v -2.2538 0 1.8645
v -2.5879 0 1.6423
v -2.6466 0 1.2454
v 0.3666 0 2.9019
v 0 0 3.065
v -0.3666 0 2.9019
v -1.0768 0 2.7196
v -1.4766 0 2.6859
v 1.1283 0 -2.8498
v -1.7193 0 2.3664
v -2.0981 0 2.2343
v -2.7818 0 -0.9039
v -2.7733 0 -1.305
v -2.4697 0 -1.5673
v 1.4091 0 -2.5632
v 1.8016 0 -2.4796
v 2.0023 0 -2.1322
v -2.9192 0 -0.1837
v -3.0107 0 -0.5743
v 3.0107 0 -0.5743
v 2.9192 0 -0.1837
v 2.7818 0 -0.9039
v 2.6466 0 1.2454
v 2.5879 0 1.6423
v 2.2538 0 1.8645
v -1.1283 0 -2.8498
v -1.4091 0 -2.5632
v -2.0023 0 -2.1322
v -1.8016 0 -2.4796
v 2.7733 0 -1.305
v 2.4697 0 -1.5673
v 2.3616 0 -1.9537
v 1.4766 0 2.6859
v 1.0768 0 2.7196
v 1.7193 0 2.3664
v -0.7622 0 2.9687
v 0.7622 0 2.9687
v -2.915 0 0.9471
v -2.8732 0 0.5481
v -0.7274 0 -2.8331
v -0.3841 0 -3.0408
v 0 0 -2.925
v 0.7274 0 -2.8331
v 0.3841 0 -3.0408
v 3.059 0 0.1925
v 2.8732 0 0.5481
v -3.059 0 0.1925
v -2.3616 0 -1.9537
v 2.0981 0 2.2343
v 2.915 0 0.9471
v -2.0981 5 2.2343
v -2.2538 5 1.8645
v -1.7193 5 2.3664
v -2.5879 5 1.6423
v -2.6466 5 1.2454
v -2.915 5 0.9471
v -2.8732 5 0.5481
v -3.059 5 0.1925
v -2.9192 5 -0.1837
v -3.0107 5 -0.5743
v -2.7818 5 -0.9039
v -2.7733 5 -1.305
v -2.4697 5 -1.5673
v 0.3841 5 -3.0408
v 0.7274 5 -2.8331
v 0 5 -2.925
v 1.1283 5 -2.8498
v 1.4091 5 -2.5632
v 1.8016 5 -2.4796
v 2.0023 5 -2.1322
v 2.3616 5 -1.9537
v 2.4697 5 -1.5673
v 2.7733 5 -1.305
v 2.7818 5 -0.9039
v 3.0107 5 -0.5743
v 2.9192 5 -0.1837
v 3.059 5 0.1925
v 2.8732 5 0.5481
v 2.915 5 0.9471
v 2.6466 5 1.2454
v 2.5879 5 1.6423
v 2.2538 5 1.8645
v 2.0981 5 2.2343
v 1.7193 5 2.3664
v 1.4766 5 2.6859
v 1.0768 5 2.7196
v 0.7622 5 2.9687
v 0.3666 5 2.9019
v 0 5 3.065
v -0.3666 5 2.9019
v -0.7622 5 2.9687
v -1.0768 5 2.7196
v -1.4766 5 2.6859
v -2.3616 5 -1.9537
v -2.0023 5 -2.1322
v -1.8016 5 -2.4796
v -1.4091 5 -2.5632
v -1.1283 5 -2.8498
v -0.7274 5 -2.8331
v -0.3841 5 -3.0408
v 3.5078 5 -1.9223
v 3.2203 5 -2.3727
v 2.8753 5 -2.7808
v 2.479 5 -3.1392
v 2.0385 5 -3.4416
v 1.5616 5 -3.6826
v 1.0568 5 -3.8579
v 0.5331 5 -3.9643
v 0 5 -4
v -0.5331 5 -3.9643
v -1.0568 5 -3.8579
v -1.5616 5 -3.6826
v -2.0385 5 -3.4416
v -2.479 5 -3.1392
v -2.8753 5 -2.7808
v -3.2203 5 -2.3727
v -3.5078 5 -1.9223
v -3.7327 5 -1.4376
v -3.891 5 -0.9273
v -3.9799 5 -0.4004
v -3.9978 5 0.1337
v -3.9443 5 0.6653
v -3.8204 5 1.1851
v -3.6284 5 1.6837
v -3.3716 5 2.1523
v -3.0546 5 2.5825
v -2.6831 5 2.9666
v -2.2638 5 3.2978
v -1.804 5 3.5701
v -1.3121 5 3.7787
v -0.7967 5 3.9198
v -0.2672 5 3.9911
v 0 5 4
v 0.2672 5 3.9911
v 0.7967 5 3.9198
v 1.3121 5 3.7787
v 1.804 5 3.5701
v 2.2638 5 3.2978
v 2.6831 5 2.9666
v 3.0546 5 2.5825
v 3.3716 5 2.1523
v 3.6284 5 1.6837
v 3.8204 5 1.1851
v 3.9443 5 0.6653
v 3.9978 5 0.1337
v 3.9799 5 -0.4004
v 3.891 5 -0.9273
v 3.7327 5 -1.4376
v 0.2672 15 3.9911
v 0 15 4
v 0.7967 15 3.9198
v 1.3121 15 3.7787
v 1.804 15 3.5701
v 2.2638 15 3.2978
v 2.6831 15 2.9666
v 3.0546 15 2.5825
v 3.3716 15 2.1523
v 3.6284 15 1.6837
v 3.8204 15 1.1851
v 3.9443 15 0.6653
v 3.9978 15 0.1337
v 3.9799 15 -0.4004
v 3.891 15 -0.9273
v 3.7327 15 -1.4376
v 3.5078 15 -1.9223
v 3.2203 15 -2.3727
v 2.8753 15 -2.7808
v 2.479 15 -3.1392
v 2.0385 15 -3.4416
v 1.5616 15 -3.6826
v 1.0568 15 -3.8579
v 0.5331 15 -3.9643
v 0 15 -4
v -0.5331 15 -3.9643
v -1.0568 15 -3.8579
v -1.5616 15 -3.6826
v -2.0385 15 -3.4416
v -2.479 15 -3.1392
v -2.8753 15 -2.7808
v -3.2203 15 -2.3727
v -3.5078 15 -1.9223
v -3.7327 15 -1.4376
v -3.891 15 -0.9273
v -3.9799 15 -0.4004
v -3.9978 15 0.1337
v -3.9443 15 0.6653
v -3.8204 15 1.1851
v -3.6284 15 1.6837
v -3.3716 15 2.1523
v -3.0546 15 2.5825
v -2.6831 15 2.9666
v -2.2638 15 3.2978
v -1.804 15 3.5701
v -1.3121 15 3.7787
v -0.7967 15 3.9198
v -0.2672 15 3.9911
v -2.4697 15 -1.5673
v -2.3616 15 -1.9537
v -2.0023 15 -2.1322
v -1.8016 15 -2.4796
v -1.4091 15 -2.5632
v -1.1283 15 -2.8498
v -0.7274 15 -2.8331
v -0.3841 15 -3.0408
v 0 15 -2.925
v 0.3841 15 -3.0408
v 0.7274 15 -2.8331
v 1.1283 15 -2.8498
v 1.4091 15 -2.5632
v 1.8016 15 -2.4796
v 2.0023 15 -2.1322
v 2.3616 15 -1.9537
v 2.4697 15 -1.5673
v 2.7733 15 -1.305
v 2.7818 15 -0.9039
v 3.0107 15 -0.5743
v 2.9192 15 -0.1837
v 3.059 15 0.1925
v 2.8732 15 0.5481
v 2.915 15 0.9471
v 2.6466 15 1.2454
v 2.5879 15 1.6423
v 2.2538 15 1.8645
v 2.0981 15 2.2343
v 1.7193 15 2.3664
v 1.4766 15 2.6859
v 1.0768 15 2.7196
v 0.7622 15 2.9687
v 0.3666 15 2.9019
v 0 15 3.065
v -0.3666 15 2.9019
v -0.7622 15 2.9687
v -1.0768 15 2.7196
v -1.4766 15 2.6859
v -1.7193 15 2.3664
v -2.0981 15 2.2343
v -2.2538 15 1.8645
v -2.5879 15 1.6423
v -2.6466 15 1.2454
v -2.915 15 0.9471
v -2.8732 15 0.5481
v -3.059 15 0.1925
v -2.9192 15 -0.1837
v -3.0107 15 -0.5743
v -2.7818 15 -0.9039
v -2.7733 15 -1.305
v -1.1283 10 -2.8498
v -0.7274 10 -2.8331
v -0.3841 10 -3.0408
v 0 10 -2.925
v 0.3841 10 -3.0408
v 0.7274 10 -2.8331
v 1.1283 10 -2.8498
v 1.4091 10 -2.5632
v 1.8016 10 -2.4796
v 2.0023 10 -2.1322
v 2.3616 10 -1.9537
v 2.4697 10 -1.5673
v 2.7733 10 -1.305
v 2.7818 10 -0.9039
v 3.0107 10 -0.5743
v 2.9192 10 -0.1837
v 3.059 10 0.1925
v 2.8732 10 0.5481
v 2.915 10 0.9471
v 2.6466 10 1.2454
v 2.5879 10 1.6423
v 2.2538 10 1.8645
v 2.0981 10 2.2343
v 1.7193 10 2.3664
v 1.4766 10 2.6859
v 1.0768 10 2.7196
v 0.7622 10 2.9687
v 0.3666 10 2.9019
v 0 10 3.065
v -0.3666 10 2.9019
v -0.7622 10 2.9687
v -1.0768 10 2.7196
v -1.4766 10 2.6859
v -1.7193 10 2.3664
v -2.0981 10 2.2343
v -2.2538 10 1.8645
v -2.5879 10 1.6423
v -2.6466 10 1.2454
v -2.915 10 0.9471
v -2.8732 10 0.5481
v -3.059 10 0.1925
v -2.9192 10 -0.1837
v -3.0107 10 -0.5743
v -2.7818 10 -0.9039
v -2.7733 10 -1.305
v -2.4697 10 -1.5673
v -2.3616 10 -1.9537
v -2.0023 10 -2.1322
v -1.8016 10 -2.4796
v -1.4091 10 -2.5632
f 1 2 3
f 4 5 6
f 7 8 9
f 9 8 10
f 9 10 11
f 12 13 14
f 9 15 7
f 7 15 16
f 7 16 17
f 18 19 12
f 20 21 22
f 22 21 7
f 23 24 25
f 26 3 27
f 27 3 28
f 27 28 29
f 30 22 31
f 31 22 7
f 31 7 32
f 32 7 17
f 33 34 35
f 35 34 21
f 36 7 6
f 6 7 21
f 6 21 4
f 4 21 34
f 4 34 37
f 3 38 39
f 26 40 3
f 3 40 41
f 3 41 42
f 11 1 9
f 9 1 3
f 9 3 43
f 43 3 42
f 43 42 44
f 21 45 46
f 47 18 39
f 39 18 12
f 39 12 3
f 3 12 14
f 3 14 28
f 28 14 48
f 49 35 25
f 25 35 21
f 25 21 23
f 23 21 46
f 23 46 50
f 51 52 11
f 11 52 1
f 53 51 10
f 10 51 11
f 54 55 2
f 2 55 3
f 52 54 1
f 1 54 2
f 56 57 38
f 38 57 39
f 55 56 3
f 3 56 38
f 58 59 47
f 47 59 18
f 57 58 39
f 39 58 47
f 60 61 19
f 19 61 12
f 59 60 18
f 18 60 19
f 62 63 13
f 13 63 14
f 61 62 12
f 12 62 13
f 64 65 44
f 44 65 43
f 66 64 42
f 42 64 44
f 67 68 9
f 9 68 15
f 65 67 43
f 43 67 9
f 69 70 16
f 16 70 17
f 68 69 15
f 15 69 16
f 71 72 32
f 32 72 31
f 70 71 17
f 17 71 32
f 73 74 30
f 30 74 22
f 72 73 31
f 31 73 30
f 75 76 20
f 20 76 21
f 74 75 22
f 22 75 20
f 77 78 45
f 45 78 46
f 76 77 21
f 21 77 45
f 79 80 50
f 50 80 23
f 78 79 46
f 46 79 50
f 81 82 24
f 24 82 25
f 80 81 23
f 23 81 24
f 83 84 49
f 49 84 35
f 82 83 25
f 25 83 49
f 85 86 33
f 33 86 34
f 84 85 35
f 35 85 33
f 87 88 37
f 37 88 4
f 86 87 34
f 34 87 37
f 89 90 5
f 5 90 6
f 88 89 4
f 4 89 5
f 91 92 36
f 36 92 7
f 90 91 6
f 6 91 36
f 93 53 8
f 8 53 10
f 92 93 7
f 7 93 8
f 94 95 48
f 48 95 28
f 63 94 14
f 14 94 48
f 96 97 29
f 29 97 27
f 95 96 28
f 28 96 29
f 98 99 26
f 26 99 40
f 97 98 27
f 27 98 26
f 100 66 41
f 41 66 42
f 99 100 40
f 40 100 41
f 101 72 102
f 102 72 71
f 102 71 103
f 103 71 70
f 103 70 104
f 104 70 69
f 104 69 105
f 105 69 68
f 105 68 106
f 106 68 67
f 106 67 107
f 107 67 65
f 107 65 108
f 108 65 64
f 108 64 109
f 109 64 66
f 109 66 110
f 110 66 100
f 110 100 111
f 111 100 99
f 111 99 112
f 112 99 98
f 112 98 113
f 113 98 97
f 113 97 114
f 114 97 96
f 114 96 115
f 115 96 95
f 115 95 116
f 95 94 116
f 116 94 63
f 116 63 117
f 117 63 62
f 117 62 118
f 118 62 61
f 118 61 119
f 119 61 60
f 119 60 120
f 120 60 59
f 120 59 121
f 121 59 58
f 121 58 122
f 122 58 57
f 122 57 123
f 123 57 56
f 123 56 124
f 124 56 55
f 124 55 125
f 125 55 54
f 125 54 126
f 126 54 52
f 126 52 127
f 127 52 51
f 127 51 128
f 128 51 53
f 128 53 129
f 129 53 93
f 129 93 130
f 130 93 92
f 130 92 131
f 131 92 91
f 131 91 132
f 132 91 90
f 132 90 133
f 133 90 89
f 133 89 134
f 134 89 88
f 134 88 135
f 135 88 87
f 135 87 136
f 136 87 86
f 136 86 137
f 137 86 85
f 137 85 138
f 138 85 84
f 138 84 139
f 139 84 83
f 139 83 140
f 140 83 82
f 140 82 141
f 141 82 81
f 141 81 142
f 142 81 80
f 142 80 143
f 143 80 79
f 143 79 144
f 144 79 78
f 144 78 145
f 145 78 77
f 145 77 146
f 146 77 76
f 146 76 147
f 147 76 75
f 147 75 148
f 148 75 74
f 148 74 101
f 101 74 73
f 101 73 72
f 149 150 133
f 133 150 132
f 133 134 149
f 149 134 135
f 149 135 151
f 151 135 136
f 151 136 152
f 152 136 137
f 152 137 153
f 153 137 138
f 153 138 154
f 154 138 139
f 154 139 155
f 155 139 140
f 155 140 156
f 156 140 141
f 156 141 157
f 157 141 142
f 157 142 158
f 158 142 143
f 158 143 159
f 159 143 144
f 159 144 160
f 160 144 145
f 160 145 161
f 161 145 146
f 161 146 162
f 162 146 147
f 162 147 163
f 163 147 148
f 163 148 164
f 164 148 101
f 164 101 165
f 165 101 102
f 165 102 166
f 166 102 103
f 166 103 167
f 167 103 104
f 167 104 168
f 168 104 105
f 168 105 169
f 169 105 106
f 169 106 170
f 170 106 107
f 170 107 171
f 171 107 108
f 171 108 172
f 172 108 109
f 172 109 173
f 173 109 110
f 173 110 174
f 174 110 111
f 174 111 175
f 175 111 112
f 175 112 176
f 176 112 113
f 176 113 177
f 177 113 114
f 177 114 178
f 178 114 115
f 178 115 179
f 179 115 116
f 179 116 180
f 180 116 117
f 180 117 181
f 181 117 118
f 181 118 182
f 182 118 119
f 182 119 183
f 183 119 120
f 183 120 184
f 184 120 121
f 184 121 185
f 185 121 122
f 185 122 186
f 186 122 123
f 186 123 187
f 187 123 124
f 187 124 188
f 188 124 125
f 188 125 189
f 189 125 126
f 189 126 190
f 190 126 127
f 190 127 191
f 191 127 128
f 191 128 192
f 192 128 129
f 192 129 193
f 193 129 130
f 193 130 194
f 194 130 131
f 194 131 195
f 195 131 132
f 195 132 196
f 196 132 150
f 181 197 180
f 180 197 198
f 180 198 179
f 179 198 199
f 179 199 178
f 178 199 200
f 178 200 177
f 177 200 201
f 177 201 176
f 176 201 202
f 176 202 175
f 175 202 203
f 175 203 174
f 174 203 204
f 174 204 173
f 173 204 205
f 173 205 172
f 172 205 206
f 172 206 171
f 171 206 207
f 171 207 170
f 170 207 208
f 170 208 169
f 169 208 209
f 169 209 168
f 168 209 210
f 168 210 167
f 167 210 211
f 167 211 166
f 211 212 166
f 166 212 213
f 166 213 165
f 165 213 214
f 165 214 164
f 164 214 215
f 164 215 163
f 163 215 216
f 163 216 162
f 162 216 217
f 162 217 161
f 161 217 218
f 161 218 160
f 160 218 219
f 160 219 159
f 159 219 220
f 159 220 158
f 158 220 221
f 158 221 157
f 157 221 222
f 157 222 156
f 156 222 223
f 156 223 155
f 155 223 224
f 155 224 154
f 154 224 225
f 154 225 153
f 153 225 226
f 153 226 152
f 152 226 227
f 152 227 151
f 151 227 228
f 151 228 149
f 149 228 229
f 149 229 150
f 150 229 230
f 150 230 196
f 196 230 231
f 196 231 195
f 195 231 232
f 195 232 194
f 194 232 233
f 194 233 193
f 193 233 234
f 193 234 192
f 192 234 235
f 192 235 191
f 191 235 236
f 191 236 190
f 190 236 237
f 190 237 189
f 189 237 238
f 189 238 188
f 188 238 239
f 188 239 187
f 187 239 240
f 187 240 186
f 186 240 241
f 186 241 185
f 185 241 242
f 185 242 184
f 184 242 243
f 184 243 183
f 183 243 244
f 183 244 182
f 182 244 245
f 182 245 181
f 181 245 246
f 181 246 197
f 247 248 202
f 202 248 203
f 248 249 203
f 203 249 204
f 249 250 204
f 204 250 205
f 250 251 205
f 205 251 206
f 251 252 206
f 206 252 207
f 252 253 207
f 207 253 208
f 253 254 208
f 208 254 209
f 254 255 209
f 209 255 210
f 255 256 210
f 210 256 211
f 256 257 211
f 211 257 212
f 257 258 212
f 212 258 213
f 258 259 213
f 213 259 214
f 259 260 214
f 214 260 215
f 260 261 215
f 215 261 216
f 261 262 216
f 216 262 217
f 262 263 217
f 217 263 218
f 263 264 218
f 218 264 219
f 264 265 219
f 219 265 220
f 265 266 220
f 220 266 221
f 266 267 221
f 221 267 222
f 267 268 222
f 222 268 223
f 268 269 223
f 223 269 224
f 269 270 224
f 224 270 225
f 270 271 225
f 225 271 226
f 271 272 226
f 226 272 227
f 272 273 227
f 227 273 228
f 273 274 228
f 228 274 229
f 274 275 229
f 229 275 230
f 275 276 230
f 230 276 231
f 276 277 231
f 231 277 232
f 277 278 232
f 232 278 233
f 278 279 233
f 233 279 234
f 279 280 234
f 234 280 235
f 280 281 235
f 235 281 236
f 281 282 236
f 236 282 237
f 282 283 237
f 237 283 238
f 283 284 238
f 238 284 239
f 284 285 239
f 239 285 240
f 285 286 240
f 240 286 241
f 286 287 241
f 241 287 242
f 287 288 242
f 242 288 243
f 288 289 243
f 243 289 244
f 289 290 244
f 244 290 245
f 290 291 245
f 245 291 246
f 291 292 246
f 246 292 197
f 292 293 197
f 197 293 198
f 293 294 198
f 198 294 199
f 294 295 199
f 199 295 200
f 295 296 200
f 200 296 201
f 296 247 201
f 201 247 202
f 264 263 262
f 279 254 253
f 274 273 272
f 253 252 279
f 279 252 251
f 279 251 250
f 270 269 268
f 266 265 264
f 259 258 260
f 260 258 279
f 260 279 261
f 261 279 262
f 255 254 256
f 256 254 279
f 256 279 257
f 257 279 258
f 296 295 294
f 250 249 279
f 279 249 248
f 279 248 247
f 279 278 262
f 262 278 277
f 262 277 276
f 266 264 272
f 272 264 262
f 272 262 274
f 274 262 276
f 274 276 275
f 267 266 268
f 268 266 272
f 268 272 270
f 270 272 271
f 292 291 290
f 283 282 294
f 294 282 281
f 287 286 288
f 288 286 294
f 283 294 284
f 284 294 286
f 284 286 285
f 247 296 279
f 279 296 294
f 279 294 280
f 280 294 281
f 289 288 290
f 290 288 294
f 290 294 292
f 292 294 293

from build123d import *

# Parameters (mm, degrees)
BOSS_EXTRUDE2_DEPTH = 5
SKETCH2_R           = 4
BOSS_EXTRUDE3_DEPTH = 10
CUT_EXTRUDE4_DEPTH  = 5


with BuildPart() as part:
    # Sketch1 → Boss-Extrude2 (new body)
    with BuildSketch(Plane(origin=(0, 0, 0), x_dir=(1, 0, 0), z_dir=(0, 1, 0))):
        Polygon((0, 2.925), (-0.384146361, 3.04083156), (-0.72741792, 2.833105746), (-1.128301754, 2.849764929), (-1.409129497, 2.563197039), (-1.801561798, 2.479637088), (-2.002300285, 2.132233235), (-2.361623089, 1.953704529), (-2.469659182, 1.567293375), (-2.773294916, 1.305013529), (-2.78184031, 0.903874709), (-3.010710423, 0.574323729), (-2.919228181, 0.18366227), (-3.058951923, -0.192452942), (-2.873190208, -0.548090345), (-2.914988222, -0.947137088), (-2.646619128, -1.245404428), (-2.587865092, -1.642309127), (-2.253751235, -1.86446517), (-2.09813688, -2.234288843), (-1.719271863, -2.366374709), (-1.476575011, -2.685879974), (-1.076764317, -2.719596221), (-0.762234504, -2.968707389), (-0.366599708, -2.901935501), (0, -3.065), (0.366599708, -2.901935501), (0.762234504, -2.968707389), (1.076764317, -2.719596221), (1.476575011, -2.685879974), (1.719271863, -2.366374709), (2.09813688, -2.234288843), (2.253751235, -1.86446517), (2.587865092, -1.642309127), (2.646619128, -1.245404428), (2.914988222, -0.947137088), (2.873190208, -0.548090345), (3.058951923, -0.192452942), (2.919228181, 0.18366227), (3.010710423, 0.574323729), (2.78184031, 0.903874709), (2.773294916, 1.305013529), (2.469659182, 1.567293375), (2.361623089, 1.953704529), (2.002300285, 2.132233235), (1.801561798, 2.479637088), (1.409129497, 2.563197039), (1.128301754, 2.849764929), (0.72741792, 2.833105746), (0.384146361, 3.04083156), align=None)
    extrude(amount=BOSS_EXTRUDE2_DEPTH)

    # Sketch2 → Boss-Extrude3 (add)
    with BuildSketch(Plane(origin=(0, 5, 0), x_dir=(1, 0, 0), z_dir=(0, 1, 0))):
        with Locations(Location((0, 0, 0), (0, 0, 270))):
            Circle(SKETCH2_R)
    extrude(amount=BOSS_EXTRUDE3_DEPTH)

    # Sketch3 → Cut-Extrude4 (cut)
    with BuildSketch(Plane(origin=(0, 15, 0), x_dir=(1, 0, 0), z_dir=(0, 1, 0))):
        Polygon((-0.72741792, 2.833105746), (-0.384146361, 3.04083156), (0, 2.925), (0.384146361, 3.04083156), (0.72741792, 2.833105746), (1.128301754, 2.849764929), (1.409129497, 2.563197039), (1.801561798, 2.479637088), (2.002300285, 2.132233235), (2.361623089, 1.953704529), (2.469659182, 1.567293375), (2.773294916, 1.305013529), (2.78184031, 0.903874709), (3.010710423, 0.574323729), (2.919228181, 0.18366227), (3.058951923, -0.192452942), (2.873190208, -0.548090345), (2.914988222, -0.947137088), (2.646619128, -1.245404428), (2.587865092, -1.642309127), (2.253751235, -1.86446517), (2.09813688, -2.234288843), (1.719271863, -2.366374709), (1.476575011, -2.685879974), (1.076764317, -2.719596221), (0.762234504, -2.968707389), (0.366599708, -2.901935501), (0, -3.065), (-0.366599708, -2.901935501), (-0.762234504, -2.968707389), (-1.076764317, -2.719596221), (-1.476575011, -2.685879974), (-1.719271863, -2.366374709), (-2.09813688, -2.234288843), (-2.253751235, -1.86446517), (-2.587865092, -1.642309127), (-2.646619128, -1.245404428), (-2.914988222, -0.947137088), (-2.873190208, -0.548090345), (-3.058951923, -0.192452942), (-2.919228181, 0.18366227), (-3.010710423, 0.574323729), (-2.78184031, 0.903874709), (-2.773294916, 1.305013529), (-2.469659182, 1.567293375), (-2.361623089, 1.953704529), (-2.002300285, 2.132233235), (-1.801561798, 2.479637088), (-1.409129497, 2.563197039), (-1.128301754, 2.849764929), align=None)
    extrude(amount=-CUT_EXTRUDE4_DEPTH, mode=Mode.SUBTRACT)


solid = part.part
